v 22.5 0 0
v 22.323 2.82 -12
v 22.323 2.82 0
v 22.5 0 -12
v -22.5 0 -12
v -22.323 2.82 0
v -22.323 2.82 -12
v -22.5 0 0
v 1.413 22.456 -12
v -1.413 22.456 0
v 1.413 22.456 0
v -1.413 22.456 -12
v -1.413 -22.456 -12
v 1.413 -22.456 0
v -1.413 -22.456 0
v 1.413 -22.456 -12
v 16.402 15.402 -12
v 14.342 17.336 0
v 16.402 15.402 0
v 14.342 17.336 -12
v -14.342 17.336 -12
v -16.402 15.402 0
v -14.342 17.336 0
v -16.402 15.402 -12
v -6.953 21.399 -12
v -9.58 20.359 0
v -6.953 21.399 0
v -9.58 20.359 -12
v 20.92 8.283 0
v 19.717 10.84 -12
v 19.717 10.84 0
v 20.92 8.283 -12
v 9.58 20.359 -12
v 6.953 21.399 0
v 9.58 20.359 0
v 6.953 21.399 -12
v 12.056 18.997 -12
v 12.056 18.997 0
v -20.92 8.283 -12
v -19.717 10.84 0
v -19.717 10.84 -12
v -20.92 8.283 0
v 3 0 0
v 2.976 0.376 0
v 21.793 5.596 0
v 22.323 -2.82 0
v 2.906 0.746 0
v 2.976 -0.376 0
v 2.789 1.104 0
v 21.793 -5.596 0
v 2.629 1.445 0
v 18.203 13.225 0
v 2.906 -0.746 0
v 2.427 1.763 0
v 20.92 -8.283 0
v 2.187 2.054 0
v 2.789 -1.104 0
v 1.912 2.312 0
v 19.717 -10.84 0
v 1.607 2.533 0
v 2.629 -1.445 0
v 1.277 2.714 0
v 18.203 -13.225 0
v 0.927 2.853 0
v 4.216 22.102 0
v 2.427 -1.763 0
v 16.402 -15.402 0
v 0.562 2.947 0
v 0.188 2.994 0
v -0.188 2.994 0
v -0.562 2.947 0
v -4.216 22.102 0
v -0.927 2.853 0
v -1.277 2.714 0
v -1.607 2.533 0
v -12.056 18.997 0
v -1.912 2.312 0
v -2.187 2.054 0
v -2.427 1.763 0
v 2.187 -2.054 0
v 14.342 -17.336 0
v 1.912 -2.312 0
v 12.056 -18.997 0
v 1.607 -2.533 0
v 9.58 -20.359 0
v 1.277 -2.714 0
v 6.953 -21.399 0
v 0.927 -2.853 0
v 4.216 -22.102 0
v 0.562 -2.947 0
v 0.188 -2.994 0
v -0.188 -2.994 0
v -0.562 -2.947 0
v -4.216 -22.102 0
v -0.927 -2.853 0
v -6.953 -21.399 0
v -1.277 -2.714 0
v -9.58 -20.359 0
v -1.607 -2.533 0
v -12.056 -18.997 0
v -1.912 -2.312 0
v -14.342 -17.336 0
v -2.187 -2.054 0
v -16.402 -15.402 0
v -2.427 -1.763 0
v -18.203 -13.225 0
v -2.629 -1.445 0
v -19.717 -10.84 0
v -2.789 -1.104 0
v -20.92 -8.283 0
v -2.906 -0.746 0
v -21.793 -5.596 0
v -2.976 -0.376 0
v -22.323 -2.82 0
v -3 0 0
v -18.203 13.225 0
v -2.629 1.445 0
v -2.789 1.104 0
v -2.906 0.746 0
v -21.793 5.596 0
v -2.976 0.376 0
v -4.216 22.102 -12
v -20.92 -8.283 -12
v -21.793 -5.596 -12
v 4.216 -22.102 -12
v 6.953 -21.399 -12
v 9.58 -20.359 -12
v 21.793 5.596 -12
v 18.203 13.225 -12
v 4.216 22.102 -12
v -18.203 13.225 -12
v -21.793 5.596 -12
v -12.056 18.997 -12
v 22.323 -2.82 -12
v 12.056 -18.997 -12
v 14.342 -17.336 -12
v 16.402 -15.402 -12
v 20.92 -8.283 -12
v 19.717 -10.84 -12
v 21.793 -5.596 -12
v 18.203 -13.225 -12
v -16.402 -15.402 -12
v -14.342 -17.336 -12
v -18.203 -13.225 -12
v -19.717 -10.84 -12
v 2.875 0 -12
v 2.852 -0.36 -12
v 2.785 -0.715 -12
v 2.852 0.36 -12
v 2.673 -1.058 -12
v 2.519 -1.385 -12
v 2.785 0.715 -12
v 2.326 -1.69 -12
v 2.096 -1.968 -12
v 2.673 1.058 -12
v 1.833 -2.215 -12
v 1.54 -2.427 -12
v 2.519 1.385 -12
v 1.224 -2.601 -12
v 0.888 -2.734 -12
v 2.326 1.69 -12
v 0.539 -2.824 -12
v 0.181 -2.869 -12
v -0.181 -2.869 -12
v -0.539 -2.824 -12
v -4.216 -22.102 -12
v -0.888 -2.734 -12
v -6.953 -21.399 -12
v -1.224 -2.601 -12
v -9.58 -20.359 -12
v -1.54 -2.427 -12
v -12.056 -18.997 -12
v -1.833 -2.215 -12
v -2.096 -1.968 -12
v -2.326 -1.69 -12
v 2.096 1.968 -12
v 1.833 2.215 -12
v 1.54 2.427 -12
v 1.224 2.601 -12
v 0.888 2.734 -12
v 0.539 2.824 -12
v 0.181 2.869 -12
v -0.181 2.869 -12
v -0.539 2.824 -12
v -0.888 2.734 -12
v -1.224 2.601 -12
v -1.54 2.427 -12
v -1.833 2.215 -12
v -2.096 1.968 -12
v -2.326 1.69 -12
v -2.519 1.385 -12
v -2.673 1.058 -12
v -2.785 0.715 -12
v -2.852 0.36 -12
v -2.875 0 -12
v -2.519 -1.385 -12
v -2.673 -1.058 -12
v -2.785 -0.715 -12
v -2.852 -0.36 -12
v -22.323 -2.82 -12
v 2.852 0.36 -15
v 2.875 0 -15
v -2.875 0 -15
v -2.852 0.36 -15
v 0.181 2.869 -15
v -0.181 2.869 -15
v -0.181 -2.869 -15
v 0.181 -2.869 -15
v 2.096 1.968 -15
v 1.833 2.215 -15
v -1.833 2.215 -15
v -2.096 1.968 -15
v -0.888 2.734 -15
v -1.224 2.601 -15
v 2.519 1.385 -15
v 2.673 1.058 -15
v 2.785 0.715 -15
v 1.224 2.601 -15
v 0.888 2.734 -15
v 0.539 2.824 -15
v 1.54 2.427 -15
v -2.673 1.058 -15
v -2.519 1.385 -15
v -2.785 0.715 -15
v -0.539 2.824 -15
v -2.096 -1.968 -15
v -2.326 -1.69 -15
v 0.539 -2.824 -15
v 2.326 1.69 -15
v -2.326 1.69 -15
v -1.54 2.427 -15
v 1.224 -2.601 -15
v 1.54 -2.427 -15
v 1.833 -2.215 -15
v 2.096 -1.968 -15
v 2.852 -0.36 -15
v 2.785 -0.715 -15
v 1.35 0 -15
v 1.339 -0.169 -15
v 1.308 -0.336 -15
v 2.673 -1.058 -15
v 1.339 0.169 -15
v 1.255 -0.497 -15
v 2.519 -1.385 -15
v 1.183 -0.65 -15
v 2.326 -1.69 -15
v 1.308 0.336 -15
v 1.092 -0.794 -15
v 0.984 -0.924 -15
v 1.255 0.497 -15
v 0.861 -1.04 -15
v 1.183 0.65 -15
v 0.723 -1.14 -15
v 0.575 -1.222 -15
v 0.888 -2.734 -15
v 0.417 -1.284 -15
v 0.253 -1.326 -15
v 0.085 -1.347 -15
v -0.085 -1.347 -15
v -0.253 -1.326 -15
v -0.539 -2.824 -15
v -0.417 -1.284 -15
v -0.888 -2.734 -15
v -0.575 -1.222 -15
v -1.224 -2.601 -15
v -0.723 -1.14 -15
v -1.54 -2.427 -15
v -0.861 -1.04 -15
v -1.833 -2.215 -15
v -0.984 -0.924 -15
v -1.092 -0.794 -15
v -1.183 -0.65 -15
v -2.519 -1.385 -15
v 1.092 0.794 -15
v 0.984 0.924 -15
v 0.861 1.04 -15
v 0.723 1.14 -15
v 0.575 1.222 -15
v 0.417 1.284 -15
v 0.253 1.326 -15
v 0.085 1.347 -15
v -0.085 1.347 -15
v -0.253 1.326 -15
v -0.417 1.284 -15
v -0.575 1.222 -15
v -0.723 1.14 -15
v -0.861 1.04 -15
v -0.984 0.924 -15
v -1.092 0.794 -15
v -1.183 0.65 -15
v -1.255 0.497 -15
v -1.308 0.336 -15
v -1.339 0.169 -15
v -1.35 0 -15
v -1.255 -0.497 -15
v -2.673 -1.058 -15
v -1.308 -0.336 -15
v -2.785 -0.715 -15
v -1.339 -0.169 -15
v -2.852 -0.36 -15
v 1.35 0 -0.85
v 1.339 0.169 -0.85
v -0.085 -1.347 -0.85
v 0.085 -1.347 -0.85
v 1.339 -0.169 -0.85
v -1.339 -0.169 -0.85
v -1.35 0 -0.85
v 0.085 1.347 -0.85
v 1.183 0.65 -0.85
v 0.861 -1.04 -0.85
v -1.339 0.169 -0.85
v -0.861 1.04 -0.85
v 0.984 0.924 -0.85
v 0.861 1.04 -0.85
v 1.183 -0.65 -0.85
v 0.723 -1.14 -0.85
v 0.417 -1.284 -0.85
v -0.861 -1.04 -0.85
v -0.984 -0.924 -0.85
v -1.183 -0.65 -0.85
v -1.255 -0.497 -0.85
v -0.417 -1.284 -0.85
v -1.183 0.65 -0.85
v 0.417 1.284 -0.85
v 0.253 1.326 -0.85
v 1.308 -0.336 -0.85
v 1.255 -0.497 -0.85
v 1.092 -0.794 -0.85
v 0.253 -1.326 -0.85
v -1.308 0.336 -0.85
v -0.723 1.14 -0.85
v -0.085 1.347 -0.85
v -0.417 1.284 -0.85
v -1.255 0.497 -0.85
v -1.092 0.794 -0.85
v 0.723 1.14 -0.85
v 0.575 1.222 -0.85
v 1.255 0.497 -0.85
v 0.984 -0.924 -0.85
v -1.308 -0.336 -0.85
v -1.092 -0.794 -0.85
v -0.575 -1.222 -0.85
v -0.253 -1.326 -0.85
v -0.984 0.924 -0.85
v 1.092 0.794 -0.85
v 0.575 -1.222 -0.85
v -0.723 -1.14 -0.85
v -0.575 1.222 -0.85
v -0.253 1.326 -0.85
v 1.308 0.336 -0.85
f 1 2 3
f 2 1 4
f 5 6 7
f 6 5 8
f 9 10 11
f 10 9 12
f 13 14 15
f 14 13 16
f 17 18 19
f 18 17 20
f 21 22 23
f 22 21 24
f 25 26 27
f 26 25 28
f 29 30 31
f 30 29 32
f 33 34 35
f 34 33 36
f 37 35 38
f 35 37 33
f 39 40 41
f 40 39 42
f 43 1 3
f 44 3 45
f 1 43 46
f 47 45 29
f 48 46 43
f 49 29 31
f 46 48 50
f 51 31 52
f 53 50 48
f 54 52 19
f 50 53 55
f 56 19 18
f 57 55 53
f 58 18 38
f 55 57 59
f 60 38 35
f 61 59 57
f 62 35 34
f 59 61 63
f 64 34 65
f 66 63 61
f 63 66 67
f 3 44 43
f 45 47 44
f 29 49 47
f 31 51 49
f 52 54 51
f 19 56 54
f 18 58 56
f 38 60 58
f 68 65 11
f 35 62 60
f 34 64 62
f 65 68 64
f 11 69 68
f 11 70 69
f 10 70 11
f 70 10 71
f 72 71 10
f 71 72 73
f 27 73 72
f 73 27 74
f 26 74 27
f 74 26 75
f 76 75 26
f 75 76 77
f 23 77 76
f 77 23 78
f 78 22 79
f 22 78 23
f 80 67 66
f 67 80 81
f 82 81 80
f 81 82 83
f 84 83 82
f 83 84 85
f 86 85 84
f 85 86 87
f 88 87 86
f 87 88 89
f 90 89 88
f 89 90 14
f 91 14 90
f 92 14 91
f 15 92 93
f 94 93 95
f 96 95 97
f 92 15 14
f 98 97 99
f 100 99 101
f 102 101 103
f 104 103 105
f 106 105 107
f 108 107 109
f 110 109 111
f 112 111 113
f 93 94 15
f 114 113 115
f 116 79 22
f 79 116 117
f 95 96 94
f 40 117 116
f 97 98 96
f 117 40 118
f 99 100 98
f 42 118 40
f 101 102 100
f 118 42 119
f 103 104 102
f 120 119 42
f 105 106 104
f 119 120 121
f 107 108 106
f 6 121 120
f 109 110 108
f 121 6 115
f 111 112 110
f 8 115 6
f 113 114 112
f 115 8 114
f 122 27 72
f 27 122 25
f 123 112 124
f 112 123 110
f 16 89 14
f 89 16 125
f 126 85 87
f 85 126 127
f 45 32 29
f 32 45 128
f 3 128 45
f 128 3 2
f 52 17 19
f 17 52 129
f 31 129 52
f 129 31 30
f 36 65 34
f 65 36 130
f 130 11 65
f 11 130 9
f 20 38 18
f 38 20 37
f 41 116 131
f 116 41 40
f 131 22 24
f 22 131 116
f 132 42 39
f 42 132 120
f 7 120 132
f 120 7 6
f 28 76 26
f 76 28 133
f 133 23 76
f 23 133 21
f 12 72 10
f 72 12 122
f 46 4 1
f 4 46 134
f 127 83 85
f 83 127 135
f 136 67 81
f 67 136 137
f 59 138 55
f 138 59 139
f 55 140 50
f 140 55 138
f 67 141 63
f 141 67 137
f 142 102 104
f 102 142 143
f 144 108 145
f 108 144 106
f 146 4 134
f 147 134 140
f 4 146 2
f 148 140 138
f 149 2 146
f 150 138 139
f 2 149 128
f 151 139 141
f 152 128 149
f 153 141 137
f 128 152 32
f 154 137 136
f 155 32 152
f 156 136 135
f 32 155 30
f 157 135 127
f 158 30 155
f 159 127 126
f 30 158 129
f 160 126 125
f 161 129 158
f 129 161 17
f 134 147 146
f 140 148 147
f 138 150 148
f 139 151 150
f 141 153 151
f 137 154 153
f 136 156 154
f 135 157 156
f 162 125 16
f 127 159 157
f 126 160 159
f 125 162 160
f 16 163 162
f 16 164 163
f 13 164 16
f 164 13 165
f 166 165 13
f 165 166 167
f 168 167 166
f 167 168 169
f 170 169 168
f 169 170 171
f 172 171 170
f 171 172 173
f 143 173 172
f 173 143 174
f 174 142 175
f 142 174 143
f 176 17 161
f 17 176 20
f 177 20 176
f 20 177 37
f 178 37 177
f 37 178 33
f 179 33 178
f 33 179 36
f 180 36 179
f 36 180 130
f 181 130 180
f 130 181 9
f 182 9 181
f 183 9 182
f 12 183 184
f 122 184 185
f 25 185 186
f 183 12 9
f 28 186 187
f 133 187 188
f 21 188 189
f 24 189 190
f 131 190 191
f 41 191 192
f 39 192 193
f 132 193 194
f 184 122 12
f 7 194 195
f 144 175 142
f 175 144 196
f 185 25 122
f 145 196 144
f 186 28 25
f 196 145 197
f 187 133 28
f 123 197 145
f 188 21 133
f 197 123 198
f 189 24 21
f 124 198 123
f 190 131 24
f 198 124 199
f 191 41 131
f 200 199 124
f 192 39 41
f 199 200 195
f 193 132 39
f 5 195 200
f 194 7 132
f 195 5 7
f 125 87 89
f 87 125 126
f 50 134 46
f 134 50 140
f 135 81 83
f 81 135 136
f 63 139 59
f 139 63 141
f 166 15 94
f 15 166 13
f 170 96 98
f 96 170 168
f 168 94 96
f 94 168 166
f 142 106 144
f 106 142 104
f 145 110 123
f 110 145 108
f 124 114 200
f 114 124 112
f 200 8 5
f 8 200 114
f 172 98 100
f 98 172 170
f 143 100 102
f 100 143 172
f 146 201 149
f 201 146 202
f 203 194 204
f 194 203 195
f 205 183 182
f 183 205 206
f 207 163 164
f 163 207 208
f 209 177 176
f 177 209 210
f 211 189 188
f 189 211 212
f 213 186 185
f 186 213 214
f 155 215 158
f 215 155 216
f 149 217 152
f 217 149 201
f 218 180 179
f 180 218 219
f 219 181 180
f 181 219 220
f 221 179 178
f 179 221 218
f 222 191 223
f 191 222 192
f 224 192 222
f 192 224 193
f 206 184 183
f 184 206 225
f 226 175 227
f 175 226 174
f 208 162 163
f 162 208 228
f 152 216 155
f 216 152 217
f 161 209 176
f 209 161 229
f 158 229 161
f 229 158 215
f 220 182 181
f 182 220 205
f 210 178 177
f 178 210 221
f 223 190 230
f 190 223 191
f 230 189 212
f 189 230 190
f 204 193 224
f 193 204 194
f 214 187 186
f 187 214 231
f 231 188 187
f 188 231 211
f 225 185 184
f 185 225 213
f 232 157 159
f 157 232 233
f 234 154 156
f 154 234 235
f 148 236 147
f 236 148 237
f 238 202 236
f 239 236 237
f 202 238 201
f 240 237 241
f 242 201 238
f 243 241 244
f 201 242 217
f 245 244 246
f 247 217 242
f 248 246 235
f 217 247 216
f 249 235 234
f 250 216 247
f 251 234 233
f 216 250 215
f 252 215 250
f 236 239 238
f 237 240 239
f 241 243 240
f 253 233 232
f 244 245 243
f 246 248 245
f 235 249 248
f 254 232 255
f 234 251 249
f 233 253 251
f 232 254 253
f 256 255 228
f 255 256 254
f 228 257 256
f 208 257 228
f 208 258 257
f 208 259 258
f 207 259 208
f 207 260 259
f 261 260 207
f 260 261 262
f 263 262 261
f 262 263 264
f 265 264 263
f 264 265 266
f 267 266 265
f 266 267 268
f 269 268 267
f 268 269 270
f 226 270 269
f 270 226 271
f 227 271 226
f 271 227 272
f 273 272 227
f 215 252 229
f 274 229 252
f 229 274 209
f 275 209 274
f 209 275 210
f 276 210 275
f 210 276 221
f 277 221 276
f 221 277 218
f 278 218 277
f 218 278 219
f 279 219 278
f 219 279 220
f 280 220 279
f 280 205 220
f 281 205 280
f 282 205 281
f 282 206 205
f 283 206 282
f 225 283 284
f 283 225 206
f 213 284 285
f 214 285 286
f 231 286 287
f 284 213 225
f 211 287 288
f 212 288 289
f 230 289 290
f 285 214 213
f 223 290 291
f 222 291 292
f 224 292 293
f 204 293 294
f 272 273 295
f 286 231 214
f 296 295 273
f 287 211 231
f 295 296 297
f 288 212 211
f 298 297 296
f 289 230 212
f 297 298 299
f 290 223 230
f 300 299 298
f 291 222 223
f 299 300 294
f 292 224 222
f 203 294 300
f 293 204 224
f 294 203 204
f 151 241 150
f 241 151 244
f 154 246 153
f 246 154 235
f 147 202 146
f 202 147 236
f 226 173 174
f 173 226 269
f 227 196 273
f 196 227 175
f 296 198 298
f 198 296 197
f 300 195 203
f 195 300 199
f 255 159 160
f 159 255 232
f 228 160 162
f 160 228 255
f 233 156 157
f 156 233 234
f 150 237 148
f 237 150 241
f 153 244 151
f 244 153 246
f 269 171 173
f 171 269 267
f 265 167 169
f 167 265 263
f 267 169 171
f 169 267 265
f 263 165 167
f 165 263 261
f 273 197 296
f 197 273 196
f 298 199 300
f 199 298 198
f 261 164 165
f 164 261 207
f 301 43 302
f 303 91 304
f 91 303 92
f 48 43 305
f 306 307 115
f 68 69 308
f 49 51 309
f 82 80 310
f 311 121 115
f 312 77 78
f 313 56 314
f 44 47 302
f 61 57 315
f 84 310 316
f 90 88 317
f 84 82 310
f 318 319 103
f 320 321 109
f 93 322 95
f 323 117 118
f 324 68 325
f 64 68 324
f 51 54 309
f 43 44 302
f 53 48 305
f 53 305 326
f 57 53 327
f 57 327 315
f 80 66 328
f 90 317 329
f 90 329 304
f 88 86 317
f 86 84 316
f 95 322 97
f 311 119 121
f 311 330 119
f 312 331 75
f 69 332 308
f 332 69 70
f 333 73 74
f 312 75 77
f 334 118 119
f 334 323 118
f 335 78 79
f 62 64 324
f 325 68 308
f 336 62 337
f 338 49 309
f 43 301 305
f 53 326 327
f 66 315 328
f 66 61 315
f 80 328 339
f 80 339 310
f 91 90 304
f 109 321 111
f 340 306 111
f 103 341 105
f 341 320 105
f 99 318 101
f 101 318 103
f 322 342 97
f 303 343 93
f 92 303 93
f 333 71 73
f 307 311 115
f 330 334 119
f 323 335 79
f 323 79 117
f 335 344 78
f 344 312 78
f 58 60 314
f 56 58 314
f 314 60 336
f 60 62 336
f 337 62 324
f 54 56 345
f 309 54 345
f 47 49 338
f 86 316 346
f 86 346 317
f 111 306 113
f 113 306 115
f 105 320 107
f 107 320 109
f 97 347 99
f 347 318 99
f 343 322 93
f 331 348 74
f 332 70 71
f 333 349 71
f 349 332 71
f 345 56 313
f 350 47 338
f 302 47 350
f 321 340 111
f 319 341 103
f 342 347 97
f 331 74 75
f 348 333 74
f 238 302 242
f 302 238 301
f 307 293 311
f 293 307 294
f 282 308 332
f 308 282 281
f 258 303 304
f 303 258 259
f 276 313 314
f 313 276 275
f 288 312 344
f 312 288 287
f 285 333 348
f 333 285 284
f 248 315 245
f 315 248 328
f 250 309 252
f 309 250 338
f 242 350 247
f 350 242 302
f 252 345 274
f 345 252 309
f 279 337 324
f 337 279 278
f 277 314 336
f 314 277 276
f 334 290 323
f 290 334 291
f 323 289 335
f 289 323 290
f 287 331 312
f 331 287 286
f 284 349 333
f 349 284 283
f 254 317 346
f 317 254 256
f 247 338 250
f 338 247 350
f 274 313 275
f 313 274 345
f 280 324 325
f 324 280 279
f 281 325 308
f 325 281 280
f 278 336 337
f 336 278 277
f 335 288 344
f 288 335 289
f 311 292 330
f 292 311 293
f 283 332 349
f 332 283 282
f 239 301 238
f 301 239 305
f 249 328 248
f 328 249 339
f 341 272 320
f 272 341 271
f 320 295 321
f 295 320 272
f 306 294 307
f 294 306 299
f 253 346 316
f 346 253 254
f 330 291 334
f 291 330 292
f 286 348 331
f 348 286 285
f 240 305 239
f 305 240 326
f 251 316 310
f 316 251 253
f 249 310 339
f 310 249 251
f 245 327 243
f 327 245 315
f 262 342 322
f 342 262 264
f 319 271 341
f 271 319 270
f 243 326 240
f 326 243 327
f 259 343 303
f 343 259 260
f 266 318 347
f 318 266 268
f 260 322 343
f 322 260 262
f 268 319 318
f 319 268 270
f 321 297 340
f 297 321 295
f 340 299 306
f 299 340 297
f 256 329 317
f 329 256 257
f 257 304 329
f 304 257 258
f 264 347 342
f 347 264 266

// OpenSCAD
$fn = 50;


difference() {
	union() {
		translate(v = [0, 0, -12.0000000000]) {
			cylinder(h = 12, r = 22.5000000000);
		}
		translate(v = [0, 0, -15.0000000000]) {
			cylinder(h = 15, r = 2.8750000000);
		}
	}
	union() {
		translate(v = [0, 0, 0]) {
			rotate(a = [0, 0, 0]) {
				difference() {
					union() {
						translate(v = [0, 0, -15.0000000000]) {
							cylinder(h = 15, r = 1.0000000000);
						}
						translate(v = [0, 0, -0.8500000000]) {
							cylinder(h = 0.8500000000, r1 = 1.3500000000, r2 = 3.0000000000);
						}
						translate(v = [0, 0, -15.0000000000]) {
							cylinder(h = 15, r = 1.3500000000);
						}
						translate(v = [0, 0, -15.0000000000]) {
							cylinder(h = 15, r = 1.0000000000);
						}
					}
					union();
				}
			}
		}
	}
}
